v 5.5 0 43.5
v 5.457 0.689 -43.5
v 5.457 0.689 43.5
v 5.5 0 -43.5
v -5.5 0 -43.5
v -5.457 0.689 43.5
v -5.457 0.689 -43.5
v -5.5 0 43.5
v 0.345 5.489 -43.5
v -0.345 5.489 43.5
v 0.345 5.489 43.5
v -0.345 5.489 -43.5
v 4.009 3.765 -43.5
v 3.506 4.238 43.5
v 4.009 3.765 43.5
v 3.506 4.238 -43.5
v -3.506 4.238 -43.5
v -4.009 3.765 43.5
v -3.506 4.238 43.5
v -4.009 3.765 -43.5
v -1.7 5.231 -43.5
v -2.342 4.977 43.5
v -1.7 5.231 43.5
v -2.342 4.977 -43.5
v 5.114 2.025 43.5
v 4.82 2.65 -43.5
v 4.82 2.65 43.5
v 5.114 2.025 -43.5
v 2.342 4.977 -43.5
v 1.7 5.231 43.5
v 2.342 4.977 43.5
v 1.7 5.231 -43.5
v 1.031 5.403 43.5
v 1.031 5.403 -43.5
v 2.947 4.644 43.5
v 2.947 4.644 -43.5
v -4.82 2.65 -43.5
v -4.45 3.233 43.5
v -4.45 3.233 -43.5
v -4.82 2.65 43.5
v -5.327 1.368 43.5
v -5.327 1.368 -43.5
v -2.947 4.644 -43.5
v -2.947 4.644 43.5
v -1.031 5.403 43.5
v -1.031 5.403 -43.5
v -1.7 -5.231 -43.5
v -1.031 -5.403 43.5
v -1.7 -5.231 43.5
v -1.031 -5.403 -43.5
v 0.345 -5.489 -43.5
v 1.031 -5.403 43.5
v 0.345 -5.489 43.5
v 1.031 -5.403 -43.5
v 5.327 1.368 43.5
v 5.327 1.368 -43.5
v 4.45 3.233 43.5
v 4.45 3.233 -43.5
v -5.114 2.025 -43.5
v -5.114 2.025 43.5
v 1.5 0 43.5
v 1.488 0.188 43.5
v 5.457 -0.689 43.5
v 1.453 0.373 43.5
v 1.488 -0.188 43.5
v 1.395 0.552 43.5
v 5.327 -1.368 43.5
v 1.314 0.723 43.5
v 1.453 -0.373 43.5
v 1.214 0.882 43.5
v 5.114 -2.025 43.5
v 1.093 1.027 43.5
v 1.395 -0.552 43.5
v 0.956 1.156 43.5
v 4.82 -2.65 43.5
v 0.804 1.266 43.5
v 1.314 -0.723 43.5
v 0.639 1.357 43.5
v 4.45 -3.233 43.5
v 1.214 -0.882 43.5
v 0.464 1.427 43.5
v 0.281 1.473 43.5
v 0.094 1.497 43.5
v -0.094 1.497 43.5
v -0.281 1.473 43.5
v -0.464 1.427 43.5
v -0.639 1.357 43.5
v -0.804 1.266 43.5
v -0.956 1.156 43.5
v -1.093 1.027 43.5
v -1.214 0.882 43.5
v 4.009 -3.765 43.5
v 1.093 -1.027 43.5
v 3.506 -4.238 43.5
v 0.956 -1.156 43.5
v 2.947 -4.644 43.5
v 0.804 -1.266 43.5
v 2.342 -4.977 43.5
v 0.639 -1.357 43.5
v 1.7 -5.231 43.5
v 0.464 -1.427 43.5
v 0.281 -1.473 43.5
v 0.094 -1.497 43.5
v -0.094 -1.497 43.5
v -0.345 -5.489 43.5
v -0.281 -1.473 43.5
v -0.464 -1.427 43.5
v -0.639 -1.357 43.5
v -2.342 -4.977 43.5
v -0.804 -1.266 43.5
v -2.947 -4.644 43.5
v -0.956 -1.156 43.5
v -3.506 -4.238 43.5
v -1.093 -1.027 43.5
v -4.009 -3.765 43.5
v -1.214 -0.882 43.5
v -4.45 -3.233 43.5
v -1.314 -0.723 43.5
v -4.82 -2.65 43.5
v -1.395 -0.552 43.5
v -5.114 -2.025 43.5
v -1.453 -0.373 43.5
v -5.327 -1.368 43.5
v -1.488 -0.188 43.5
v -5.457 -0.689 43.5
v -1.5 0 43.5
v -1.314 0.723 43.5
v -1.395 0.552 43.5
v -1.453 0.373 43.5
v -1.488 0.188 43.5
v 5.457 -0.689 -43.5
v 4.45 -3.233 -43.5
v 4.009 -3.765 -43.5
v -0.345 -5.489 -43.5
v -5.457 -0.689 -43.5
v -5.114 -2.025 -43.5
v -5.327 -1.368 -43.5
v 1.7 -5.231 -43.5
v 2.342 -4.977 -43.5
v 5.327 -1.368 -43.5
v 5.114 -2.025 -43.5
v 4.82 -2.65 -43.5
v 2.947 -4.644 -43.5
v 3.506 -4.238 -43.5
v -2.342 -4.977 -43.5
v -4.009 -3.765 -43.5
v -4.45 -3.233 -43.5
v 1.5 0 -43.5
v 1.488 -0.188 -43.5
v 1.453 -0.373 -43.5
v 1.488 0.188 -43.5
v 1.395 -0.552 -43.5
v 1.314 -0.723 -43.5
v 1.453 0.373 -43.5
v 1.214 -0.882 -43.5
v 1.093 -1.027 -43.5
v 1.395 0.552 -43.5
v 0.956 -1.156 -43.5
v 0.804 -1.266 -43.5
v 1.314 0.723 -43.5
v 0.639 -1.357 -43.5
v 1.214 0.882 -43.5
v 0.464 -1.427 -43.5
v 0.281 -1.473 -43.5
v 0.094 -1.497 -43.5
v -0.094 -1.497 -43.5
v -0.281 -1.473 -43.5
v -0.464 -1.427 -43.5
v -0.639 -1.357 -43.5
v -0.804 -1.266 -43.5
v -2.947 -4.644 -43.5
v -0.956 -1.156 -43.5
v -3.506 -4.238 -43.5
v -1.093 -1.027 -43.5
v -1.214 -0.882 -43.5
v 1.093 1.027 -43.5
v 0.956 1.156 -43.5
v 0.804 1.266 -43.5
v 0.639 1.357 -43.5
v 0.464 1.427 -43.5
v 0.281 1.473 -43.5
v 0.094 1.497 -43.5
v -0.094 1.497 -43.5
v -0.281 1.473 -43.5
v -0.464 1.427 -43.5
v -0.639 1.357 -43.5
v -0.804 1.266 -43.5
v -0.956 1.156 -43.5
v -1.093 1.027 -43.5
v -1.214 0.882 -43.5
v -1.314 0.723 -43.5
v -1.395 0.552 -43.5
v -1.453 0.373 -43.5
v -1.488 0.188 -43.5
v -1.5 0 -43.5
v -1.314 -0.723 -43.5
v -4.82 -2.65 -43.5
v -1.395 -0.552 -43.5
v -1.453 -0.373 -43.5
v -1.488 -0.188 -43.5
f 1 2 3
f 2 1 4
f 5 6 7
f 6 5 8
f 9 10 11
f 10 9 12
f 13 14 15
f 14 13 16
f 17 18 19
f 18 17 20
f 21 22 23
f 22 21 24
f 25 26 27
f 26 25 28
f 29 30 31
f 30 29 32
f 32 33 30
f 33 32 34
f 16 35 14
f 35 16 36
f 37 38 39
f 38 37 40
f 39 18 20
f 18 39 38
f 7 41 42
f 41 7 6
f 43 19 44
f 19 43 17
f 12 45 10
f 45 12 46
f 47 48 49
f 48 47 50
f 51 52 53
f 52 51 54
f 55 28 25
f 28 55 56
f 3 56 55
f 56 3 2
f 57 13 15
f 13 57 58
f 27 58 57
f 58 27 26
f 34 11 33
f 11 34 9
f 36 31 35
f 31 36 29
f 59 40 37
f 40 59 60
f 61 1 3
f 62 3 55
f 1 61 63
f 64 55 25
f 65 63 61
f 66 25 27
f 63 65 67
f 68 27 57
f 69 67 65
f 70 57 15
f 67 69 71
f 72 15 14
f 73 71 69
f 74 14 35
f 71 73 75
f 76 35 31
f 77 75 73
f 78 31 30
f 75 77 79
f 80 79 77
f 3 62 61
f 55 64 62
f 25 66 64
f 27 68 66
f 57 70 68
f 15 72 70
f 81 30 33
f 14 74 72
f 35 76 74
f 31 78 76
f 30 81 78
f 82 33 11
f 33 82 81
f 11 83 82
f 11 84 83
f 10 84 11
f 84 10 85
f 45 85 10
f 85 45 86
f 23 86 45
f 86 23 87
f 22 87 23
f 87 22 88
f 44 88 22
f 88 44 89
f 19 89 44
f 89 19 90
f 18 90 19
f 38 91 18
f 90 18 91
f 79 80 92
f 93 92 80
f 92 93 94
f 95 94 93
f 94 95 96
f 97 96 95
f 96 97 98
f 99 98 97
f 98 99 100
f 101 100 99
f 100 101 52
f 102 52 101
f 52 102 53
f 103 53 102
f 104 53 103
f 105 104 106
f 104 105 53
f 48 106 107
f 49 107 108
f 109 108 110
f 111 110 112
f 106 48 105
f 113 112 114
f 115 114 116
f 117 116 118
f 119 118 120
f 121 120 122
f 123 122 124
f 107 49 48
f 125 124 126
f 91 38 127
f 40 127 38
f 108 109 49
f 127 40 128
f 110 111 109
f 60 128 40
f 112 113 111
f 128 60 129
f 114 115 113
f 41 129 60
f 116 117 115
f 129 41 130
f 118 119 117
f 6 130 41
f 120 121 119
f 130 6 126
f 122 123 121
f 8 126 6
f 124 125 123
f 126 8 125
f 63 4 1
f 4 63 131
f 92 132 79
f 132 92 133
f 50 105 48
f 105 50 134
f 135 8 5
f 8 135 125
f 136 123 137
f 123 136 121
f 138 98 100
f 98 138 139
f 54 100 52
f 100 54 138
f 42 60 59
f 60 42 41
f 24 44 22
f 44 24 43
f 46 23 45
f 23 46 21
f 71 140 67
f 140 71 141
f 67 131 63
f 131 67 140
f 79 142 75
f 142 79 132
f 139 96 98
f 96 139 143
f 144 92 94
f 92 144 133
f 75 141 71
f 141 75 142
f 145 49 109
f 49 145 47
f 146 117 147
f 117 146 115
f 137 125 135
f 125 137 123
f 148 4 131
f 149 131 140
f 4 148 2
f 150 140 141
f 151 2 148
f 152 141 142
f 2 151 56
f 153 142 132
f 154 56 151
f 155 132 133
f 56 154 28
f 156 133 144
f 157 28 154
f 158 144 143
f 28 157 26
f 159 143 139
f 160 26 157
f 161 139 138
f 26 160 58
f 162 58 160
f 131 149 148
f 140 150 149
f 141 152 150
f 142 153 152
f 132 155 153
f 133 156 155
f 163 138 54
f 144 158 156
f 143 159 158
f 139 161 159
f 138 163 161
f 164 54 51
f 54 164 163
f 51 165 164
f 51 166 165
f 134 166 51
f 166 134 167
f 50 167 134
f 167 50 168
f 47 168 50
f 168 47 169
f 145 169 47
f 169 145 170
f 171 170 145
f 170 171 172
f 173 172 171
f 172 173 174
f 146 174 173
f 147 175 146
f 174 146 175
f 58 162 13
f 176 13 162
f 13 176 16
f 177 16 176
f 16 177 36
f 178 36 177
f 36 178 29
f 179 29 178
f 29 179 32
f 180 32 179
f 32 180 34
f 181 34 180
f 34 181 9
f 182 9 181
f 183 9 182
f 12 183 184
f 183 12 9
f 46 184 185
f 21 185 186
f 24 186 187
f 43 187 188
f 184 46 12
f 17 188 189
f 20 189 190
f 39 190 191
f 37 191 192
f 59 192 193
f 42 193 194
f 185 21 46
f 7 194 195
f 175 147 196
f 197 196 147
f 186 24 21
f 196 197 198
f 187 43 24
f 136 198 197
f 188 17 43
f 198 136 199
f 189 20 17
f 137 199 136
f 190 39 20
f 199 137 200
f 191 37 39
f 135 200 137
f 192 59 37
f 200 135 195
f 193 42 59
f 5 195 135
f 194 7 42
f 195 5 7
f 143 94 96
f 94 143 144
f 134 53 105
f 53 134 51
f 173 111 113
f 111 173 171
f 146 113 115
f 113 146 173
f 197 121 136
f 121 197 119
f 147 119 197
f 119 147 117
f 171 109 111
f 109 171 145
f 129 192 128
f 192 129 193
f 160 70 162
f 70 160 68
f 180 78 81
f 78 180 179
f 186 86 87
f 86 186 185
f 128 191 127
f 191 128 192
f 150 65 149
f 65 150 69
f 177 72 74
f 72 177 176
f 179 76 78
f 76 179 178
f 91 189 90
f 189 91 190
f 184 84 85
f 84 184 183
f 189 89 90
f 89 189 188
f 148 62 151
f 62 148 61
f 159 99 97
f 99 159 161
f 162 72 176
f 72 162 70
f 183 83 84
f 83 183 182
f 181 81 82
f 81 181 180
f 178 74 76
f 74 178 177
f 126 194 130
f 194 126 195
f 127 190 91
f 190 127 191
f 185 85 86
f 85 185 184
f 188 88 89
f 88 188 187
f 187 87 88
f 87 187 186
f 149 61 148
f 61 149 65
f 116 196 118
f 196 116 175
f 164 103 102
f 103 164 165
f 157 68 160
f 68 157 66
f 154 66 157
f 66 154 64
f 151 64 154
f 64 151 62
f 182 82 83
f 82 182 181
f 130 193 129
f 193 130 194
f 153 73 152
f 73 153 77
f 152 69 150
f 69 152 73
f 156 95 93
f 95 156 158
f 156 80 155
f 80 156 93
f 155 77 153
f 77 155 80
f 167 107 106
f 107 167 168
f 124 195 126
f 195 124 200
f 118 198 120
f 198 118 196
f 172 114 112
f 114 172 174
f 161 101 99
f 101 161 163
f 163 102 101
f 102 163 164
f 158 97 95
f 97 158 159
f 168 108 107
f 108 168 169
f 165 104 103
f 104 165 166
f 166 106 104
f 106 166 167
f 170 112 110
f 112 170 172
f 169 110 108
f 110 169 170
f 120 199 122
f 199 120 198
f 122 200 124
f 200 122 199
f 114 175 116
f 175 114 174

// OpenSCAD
$fn = 50;


difference() {
	union() {
		translate(v = [0, 0, -43.5000000000]) {
			cylinder(h = 87, r = 5.5000000000);
		}
	}
	union() {
		translate(v = [0, 0, -100.0000000000]) {
			cylinder(h = 200, r = 1.5000000000);
		}
	}
}
